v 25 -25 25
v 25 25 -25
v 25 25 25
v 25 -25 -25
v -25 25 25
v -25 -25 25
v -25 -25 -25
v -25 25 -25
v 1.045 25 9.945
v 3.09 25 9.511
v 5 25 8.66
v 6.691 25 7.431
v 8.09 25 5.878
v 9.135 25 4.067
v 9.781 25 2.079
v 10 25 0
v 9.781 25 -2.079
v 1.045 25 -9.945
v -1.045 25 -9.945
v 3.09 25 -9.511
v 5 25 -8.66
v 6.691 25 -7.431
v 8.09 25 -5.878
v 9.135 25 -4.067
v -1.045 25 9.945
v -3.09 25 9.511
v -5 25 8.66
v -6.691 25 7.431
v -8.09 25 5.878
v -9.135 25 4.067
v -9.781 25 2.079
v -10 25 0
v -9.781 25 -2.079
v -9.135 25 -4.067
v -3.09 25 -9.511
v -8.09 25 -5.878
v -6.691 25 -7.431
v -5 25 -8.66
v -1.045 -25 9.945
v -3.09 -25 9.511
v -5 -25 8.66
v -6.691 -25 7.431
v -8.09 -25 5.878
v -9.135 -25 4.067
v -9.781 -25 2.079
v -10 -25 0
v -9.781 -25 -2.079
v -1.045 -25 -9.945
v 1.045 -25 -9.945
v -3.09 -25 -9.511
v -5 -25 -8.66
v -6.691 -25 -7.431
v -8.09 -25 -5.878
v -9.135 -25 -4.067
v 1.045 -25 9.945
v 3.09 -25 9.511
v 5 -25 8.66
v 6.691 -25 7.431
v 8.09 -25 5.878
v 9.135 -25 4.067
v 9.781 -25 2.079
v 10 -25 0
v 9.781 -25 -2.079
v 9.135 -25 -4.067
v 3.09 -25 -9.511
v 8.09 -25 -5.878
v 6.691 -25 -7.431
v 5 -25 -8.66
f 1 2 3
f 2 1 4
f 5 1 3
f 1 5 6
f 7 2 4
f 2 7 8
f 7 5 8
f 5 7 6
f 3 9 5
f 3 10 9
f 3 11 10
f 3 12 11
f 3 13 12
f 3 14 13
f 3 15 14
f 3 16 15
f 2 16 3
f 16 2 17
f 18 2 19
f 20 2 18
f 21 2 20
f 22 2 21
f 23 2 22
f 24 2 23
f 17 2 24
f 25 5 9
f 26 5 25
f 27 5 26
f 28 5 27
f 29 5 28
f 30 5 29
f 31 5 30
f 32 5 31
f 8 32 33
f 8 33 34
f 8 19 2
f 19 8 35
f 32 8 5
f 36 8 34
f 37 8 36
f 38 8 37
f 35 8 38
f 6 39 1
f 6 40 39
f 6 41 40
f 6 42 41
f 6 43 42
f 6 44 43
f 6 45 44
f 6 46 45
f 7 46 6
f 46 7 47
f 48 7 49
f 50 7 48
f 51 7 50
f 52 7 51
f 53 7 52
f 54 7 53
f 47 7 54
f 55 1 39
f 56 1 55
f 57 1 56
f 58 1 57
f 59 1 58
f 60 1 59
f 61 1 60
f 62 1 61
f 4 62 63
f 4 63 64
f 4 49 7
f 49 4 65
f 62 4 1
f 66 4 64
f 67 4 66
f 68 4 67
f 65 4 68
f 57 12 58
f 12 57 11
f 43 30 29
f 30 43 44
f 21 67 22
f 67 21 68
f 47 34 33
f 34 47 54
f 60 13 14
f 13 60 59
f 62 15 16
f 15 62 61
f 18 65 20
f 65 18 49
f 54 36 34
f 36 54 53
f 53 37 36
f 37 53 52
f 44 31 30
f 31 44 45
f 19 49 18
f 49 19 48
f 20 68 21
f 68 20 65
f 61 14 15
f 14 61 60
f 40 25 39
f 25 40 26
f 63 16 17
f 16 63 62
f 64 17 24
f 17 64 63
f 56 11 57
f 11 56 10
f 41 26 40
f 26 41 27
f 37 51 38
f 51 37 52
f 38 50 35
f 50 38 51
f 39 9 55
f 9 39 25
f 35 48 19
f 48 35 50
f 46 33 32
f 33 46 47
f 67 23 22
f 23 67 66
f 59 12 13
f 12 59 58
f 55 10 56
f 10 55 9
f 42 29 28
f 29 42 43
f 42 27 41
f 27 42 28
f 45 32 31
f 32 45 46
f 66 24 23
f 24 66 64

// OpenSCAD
// Parameters
cube_size = 50; // Size of the cube (length of each side)
hole_diameter = 20; // Diameter of the cylindrical hole

// Main module
module cube_block() {
    // Create the cube
    difference() {
        cube([cube_size, cube_size, cube_size], center=true); // Centered cube
        // Create the cylindrical hole
        rotate([90, 0, 0]) // Rotate the cylinder to align with the Z-axis
        translate([0, 0, 0]) // Center the cylinder
        cylinder(h=cube_size, d=hole_diameter, center=true); // Centered cylinder
    }
}

// Render the cube block
cube_block();
